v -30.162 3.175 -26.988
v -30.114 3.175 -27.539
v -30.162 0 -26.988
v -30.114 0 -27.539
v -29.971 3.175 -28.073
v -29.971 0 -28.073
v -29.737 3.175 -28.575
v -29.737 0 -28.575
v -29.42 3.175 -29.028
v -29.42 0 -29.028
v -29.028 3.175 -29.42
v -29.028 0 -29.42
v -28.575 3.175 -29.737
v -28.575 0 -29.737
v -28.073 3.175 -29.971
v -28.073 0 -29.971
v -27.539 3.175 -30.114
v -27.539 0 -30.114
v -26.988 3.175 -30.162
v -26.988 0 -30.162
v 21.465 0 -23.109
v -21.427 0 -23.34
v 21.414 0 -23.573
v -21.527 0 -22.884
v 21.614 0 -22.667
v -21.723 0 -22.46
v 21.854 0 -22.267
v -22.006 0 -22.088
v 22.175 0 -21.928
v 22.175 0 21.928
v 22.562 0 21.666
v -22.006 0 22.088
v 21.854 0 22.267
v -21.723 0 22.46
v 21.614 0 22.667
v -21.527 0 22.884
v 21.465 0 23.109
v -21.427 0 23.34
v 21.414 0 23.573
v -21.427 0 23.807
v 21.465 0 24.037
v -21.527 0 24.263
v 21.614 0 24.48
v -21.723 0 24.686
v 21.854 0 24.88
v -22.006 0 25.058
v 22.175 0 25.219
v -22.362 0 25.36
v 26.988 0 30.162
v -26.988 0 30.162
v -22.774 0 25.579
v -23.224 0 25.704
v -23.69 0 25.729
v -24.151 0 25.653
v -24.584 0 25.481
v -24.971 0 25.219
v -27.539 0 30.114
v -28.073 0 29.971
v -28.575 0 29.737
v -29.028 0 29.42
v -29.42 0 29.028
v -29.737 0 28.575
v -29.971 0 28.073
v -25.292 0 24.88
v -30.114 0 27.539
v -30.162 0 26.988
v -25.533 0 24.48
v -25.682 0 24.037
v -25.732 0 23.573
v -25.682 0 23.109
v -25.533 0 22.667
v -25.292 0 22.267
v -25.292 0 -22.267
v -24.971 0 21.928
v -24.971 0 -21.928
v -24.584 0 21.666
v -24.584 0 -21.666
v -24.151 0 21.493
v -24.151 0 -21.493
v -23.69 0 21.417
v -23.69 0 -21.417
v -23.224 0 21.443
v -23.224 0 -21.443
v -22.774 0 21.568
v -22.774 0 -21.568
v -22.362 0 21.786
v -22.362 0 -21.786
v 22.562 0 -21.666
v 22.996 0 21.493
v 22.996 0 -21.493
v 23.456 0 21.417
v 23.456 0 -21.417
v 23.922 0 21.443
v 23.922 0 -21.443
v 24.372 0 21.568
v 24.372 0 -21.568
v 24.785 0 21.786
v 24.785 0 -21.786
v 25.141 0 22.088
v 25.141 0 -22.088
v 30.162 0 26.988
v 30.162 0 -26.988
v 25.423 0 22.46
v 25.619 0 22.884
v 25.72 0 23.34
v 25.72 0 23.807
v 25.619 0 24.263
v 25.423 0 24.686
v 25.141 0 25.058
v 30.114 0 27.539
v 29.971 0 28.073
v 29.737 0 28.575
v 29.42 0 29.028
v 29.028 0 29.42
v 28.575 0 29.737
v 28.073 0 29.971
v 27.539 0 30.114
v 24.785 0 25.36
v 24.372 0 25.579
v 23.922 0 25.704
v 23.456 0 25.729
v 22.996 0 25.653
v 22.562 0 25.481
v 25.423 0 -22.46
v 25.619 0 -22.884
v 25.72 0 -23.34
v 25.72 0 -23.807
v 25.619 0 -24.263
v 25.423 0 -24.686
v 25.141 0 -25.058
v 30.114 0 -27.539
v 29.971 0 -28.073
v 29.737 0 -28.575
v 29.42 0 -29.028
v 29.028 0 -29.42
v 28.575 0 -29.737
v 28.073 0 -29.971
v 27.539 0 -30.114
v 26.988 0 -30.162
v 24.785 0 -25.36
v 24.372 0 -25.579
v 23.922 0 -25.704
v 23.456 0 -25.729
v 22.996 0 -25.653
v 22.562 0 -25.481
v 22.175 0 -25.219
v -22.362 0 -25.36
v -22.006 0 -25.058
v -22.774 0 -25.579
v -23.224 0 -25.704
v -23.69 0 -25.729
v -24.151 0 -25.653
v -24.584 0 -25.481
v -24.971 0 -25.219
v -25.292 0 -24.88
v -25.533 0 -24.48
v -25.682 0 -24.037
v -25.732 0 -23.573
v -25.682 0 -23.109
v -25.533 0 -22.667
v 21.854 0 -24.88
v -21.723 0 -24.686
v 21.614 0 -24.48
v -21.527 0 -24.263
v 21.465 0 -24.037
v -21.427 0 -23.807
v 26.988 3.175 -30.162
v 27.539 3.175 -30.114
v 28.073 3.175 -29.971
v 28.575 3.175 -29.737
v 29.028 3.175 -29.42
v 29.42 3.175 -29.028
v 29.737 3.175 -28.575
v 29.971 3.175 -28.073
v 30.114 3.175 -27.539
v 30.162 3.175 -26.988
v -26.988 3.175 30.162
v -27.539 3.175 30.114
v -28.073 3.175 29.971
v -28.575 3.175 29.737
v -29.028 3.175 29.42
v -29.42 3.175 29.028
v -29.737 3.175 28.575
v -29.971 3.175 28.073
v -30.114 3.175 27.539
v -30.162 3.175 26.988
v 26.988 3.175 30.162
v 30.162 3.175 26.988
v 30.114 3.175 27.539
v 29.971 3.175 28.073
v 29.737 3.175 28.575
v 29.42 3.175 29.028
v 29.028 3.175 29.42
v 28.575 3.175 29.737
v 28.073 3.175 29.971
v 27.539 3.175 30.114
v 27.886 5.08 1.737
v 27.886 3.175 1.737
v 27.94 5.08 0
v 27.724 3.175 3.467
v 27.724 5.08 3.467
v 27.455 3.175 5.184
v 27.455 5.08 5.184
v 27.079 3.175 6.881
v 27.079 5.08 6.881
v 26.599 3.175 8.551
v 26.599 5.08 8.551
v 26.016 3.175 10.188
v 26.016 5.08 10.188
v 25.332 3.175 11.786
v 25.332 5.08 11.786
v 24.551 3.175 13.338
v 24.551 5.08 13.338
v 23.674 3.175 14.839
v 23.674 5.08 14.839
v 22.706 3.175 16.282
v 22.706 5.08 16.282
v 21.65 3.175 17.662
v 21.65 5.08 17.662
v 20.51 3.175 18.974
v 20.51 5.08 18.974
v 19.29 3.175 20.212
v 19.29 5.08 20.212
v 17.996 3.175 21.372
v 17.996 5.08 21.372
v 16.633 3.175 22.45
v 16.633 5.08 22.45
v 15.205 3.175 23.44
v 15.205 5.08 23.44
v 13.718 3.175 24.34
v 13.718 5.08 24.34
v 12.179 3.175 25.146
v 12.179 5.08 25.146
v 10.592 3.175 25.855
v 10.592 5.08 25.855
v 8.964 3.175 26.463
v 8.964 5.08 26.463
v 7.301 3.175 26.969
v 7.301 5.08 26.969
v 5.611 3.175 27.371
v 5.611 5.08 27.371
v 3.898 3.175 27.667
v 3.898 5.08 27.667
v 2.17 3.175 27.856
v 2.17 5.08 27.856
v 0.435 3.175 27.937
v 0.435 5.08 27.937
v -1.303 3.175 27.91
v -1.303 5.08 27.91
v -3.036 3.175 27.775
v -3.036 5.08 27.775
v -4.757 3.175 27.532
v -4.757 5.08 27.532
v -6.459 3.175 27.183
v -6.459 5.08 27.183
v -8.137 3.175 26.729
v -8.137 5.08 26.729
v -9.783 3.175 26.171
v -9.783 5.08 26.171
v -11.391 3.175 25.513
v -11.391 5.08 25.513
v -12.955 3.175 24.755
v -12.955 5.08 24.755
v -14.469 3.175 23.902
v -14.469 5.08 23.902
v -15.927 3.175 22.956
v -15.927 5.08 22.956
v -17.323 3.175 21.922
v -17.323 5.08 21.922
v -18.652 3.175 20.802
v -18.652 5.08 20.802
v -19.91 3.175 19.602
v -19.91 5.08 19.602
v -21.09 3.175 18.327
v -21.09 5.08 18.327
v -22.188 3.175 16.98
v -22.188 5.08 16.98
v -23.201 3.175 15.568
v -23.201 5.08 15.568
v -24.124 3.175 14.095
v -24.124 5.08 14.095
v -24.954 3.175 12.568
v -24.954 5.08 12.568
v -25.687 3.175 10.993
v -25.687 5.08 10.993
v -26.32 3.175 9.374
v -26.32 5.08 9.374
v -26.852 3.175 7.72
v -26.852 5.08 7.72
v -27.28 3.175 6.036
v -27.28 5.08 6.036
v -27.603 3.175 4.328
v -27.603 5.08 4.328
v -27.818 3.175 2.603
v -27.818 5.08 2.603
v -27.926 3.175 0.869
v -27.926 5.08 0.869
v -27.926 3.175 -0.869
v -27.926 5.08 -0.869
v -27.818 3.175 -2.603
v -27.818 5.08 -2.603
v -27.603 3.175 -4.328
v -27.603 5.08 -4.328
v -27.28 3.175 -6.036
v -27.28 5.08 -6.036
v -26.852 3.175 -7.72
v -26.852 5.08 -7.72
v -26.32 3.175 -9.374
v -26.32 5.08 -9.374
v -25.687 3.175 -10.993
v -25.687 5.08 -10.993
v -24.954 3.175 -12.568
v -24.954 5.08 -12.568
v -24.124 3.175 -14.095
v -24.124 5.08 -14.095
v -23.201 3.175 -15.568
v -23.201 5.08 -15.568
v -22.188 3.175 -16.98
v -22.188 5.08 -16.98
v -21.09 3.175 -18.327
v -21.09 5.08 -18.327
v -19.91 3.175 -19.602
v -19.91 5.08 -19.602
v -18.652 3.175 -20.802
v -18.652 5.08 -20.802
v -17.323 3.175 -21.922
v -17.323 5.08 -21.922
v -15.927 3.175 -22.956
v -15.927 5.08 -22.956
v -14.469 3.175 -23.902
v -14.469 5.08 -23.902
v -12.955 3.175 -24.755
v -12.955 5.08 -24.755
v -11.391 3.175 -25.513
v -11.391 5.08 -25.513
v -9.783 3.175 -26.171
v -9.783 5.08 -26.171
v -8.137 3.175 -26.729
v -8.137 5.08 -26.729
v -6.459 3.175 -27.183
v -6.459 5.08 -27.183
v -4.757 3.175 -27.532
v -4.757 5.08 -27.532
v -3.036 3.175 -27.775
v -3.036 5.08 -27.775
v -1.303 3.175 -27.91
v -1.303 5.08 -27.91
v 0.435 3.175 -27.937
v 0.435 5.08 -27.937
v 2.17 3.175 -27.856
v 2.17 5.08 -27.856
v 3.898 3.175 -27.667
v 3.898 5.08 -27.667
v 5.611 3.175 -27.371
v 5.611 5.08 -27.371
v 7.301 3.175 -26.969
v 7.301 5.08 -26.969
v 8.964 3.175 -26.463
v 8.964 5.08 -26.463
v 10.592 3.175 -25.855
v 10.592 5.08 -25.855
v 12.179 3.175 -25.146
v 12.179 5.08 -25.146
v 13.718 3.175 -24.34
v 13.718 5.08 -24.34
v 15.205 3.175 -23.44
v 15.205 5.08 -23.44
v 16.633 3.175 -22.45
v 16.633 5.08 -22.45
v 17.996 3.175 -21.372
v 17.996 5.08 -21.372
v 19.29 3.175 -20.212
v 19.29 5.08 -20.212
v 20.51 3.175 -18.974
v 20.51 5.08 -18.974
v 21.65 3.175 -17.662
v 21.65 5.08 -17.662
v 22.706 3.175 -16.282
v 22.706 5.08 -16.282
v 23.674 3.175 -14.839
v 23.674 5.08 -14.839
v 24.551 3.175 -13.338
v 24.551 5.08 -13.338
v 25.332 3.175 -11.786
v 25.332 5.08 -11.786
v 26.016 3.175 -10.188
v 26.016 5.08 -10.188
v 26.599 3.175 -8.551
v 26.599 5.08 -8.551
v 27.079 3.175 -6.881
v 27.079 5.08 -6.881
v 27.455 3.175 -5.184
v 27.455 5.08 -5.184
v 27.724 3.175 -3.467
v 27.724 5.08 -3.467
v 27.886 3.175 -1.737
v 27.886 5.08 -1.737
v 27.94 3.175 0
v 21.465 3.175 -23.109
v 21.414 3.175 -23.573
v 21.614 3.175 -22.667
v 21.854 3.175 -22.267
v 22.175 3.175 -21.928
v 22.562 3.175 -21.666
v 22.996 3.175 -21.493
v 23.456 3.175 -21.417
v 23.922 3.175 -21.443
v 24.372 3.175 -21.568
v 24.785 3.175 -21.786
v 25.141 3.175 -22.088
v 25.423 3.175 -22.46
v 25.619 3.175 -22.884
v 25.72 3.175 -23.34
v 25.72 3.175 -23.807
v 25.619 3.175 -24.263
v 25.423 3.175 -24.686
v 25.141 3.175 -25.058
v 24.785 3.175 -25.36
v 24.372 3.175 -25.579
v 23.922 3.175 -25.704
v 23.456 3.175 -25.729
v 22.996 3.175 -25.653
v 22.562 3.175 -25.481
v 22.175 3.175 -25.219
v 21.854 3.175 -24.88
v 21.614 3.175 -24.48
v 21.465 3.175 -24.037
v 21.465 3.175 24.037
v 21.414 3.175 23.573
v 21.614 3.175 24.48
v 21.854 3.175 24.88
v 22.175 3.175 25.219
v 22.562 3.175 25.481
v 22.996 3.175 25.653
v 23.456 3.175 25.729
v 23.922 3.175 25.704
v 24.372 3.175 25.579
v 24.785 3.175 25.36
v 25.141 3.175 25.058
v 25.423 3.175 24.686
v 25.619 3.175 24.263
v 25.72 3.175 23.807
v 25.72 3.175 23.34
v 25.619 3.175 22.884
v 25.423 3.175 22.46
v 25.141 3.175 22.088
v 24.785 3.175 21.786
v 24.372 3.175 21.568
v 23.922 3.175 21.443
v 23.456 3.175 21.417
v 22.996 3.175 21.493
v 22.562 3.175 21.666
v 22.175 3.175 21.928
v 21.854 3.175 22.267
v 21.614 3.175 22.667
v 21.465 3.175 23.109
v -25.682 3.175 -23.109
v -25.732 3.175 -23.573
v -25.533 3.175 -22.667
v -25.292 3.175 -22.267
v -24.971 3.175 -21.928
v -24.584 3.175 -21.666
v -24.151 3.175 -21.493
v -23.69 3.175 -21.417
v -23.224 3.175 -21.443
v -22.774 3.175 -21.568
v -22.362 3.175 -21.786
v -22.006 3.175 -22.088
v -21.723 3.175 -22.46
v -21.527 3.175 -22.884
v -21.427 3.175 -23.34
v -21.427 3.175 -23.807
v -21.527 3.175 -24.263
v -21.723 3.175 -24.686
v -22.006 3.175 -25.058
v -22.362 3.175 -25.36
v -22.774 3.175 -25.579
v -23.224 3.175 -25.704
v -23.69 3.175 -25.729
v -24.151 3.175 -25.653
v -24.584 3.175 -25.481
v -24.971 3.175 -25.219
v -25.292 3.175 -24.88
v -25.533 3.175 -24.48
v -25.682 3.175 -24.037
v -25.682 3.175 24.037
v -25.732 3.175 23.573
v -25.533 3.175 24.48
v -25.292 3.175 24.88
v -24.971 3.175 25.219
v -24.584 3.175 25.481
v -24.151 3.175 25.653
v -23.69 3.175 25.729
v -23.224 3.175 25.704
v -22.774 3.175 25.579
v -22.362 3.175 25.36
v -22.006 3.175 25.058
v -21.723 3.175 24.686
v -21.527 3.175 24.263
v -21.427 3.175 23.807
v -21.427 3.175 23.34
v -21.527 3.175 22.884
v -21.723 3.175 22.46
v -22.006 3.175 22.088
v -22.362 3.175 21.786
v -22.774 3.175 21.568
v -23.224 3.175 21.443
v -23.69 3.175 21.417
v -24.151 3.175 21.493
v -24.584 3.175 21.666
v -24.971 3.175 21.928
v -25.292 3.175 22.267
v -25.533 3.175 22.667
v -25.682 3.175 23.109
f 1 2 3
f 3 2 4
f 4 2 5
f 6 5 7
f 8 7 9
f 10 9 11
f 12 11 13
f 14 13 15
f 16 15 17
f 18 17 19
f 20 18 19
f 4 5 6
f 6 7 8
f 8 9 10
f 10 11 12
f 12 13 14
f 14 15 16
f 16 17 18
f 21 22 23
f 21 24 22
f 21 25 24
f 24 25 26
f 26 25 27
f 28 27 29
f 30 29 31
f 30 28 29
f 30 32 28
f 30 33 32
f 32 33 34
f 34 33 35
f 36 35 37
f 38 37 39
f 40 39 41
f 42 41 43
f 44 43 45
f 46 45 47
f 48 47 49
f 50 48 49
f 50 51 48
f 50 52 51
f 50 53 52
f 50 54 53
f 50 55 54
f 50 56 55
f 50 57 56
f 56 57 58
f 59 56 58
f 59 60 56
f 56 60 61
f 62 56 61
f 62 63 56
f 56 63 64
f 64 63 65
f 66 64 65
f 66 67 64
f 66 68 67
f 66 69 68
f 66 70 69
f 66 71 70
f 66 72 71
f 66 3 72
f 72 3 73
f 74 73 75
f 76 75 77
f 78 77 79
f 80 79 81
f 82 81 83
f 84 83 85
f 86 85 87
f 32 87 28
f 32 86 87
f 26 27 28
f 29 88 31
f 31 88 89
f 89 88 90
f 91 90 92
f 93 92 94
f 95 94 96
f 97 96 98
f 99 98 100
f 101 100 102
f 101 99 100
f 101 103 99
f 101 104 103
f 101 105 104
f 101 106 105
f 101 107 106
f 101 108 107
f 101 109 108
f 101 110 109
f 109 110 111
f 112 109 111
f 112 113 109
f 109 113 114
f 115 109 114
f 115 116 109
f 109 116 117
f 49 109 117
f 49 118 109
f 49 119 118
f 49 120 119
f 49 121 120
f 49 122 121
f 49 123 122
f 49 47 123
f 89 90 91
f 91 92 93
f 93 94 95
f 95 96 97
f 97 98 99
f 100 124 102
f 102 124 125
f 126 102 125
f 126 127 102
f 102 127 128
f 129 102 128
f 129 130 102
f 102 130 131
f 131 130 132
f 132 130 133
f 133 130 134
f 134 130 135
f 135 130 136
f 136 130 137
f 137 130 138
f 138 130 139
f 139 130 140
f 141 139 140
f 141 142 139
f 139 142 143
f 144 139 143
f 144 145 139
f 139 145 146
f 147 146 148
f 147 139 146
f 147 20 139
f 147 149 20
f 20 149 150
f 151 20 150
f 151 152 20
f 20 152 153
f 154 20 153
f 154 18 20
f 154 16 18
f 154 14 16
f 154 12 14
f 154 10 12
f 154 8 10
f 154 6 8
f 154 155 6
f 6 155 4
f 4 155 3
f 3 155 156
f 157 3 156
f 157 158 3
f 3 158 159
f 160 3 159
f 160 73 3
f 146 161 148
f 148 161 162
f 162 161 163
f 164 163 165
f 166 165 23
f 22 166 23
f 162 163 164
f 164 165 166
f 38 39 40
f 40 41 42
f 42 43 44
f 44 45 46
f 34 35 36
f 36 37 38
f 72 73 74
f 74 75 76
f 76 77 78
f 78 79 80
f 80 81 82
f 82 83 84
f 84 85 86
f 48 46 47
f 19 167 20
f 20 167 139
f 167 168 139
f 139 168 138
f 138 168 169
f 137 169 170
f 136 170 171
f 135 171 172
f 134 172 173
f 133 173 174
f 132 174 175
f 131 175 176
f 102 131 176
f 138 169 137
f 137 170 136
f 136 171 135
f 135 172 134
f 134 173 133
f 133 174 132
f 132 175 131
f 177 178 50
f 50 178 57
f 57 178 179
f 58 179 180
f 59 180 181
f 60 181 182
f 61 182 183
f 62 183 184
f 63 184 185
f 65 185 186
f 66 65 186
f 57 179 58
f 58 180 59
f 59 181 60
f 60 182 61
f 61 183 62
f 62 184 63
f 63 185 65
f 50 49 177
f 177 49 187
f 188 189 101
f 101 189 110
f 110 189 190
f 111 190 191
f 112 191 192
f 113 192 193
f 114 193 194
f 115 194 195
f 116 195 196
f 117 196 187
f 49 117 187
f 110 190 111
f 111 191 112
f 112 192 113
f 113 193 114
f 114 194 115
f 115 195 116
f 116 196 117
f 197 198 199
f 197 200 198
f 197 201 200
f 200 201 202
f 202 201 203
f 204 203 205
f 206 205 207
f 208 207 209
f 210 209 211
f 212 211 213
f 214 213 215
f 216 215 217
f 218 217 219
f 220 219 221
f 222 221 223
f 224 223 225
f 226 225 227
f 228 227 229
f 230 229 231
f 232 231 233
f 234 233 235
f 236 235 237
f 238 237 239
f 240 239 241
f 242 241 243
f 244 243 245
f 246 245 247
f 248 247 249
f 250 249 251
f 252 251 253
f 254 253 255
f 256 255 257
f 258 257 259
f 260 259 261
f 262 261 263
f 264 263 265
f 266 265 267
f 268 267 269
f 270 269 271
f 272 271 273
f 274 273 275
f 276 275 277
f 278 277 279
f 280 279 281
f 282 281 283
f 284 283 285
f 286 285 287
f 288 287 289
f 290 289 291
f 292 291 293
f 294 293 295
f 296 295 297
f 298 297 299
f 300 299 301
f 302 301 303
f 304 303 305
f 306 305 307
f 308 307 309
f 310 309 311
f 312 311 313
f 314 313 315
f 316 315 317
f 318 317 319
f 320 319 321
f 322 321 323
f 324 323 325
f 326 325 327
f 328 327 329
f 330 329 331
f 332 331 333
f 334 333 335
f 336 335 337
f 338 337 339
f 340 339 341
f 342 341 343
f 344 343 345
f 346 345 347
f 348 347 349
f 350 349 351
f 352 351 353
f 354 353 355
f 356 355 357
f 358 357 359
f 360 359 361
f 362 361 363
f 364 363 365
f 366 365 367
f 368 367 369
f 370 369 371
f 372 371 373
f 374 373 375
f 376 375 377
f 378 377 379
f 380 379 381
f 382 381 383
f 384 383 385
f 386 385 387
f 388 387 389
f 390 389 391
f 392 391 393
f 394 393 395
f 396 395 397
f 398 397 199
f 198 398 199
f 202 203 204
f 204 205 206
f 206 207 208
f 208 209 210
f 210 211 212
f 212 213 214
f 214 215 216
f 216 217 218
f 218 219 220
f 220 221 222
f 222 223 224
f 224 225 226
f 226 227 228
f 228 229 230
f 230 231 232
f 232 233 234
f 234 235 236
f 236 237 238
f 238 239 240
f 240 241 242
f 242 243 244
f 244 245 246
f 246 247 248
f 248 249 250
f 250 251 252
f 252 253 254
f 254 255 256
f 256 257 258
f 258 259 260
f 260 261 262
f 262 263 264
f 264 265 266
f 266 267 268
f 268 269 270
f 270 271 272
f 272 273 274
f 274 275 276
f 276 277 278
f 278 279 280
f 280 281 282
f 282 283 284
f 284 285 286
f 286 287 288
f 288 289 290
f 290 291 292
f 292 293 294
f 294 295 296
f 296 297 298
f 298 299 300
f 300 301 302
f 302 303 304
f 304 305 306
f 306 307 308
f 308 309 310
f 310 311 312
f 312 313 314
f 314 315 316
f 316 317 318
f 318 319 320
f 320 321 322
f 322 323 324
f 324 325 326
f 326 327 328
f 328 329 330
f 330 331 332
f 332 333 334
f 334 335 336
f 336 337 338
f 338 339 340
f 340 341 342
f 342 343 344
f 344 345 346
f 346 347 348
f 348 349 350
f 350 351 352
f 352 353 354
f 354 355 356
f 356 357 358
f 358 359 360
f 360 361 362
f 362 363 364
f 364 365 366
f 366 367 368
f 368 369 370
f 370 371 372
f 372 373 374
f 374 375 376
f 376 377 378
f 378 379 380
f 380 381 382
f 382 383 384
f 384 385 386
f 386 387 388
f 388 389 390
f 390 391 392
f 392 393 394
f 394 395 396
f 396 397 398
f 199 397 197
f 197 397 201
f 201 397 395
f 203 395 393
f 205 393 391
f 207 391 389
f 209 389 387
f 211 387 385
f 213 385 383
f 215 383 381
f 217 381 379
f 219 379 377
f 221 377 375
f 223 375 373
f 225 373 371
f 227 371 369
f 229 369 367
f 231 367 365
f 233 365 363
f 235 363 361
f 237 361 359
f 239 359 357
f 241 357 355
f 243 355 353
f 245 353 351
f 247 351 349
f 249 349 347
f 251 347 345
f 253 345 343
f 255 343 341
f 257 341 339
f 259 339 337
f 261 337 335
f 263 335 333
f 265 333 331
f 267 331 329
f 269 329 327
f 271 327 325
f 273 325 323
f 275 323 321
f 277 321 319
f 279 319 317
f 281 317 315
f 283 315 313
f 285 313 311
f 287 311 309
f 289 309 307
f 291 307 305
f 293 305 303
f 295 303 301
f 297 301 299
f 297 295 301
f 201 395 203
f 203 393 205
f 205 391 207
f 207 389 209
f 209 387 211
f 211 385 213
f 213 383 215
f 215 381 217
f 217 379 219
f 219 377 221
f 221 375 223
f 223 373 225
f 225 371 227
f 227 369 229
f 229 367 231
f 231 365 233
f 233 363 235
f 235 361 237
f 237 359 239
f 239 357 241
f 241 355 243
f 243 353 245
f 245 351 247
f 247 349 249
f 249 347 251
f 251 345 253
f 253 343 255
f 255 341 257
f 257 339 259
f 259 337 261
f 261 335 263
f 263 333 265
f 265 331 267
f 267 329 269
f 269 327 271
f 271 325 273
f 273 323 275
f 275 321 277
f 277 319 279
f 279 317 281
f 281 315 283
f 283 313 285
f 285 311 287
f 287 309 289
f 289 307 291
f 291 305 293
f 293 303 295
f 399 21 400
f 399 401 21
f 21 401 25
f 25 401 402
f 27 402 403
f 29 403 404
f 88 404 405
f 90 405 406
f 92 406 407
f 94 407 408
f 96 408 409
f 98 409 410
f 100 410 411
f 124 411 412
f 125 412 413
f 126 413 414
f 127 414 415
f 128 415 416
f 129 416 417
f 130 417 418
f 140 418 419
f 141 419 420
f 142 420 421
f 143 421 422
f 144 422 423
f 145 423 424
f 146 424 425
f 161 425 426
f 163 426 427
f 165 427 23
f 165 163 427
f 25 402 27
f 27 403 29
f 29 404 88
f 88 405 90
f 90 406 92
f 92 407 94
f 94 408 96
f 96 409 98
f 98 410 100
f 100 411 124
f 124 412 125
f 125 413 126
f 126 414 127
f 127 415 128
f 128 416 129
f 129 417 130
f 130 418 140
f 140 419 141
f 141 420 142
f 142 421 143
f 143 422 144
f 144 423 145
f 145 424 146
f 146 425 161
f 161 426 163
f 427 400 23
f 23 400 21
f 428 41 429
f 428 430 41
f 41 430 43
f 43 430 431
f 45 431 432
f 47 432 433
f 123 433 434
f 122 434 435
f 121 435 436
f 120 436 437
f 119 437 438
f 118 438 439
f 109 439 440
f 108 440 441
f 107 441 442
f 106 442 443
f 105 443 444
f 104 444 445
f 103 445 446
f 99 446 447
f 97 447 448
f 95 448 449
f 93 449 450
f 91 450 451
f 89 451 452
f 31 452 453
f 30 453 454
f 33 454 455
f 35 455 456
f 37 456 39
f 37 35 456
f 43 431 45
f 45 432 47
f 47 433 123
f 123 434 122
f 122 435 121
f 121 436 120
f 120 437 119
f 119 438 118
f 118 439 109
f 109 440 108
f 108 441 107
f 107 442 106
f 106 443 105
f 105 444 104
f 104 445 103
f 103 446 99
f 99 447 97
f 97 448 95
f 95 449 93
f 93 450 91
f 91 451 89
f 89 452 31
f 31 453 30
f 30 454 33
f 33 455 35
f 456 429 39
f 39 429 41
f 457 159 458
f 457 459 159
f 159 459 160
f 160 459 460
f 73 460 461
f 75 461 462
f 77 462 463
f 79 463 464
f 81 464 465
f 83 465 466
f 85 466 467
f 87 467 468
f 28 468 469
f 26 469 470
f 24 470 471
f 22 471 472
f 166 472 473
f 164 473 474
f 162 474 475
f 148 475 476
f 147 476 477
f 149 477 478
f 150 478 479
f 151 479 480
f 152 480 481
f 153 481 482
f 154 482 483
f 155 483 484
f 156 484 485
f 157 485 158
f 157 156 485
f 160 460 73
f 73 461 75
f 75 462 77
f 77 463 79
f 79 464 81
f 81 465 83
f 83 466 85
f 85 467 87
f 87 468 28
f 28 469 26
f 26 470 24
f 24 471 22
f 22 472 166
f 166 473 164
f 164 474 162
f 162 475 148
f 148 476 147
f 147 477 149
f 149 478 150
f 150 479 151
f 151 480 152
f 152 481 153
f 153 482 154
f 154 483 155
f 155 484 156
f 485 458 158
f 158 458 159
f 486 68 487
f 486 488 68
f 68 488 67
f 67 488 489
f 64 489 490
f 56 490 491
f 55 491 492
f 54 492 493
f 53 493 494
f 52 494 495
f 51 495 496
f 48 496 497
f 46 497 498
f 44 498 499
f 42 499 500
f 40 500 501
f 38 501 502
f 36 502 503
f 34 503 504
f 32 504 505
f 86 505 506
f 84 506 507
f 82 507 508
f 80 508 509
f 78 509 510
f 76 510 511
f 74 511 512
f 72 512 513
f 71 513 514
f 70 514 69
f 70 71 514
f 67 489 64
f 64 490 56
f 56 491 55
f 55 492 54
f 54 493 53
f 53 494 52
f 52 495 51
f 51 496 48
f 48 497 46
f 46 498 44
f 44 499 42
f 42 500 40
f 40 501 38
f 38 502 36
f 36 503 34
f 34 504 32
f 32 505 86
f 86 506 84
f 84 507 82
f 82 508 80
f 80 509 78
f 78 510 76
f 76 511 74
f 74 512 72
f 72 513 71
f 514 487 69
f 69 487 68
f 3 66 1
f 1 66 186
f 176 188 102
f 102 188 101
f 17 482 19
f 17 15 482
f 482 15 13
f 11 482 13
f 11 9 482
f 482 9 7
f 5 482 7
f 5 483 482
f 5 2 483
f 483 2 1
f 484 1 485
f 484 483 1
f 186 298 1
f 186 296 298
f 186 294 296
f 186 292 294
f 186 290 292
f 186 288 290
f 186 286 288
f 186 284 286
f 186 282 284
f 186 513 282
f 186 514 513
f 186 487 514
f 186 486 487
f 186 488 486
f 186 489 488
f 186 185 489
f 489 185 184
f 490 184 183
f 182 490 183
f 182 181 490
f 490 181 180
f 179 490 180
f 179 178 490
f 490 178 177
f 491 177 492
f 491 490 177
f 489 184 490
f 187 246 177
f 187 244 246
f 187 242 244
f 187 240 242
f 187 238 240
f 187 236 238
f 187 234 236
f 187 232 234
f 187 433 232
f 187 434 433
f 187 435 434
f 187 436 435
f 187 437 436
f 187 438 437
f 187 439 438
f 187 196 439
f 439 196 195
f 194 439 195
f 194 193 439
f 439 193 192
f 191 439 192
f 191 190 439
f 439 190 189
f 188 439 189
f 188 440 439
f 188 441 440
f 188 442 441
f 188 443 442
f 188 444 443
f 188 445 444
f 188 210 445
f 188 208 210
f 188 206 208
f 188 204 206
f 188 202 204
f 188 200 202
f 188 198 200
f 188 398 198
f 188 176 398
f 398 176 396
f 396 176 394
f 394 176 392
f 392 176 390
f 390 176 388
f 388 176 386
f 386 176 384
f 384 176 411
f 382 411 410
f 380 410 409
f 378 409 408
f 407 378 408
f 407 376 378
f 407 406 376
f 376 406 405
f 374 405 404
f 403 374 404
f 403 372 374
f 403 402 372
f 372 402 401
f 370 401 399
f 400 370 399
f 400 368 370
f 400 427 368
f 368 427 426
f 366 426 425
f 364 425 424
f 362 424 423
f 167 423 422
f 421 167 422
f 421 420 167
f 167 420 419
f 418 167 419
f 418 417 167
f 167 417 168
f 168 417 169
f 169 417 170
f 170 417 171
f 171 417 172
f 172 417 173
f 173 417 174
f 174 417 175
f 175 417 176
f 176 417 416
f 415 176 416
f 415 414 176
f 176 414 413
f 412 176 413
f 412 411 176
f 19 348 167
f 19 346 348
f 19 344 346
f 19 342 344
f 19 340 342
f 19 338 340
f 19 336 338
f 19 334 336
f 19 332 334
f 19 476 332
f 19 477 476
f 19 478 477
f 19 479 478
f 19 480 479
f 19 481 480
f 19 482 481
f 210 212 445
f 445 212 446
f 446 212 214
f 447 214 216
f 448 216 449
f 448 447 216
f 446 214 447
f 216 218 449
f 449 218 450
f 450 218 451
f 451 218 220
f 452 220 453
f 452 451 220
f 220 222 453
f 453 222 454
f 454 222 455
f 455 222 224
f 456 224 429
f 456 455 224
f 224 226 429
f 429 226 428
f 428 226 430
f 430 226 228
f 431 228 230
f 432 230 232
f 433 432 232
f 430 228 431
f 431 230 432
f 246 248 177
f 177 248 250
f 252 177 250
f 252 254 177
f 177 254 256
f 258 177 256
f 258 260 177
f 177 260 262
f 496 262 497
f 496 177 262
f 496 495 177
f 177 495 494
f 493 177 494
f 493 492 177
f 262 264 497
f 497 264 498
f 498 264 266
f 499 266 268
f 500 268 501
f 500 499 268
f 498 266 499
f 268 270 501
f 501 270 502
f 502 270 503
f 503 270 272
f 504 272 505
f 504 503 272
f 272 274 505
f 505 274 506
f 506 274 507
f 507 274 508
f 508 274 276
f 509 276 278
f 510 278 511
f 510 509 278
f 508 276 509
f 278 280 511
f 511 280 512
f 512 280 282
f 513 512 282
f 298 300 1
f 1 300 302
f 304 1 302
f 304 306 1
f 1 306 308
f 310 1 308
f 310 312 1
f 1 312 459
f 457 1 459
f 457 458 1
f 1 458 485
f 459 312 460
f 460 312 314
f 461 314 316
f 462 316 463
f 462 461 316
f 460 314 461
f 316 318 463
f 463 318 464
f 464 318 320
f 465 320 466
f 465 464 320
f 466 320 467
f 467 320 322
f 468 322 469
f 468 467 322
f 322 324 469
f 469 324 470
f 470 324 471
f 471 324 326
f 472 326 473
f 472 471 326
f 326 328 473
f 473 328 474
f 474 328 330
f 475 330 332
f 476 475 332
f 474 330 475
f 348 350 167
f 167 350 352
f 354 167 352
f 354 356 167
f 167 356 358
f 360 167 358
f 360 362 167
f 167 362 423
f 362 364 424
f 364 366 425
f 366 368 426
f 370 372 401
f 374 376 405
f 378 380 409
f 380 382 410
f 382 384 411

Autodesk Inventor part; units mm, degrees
ref_plane "YZ Plane" through (0, 0, 0) normal (1, 0, 0) x (0, 1, 0)
ref_plane "XZ Plane" through (0, 0, 0) normal (0, 1, 0) x (-1, 0, 0)
ref_plane "XY Plane" through (0, 0, 0) normal (0, 0, 1) x (1, 0, 0)
sketch "Sketch1" plane through (0, 0, 0) normal (0, 1, 0) x (-1, 0, 0)
  line L0 (30.1625, 30.1625) -> (-30.1625, 30.1625)
  line L1 (-30.1625, 30.1625) -> (-30.1625, -30.1625)
  line L2 (-30.1625, -30.1625) -> (30.1625, -30.1625)
  line L3 (30.1625, -30.1625) -> (30.1625, 30.1625)
  circle A0 centre (0, 0) radius 33.3375 construction
  circle A1 centre (0, 0) radius 28.575
  line L4 (-30.1625, 30.1625) -> (30.1625, -30.1625) construction
  line L5 (30.1625, 30.1625) -> (-30.1625, -30.1625) construction
  circle A2 centre (23.5732, 23.5732) radius 2.159
  circle A3 centre (23.5732, -23.5732) radius 2.159
  circle A4 centre (-23.5732, 23.5732) radius 2.159
  circle A5 centre (-23.5732, -23.5732) radius 2.159
  point P0 (0, 0)
  point P1 (0, 0)
  dimension "d0" = 60.325
  dimension "d1" = 60.325
  dimension "d2" = 66.675
  dimension "d3" = 57.15
  dimension "d4" = 4.318
  dimension "d5" = 4.318
  dimension "d6" = 4.318
  dimension "d7" = 4.318
extrude "Extrusion1" add sketch "Sketch1" along normal blind 3.175 contours L3 L2 L1 L0 | A1
sketch "Sketch2" plane through (0, 3.175, 0) normal (0, 1, 0) x (1, 0, 0)
  circle A0 centre (0, 0) radius 27.94
  circle A1 centre (0, 0) radius 28.575 construction
  point P0 (0, 0)
  dimension "d10" = 55.88
  dimension "d17" = 57.15
extrude "Extrusion2" add sketch "Sketch2" along normal blind 1.905
fillet "Fillet1" radius 3.175 1 edges at (30.1625, 1.5875, 30.1625)
fillet "Fillet2" radius 3.175 1 edges at (-30.1625, 1.5875, 30.1625)
fillet "Fillet3" radius 3.175 1 edges at (30.1625, 1.5875, -30.1625)
fillet "Fillet4" radius 3.175 1 edges at (-30.1625, 1.5875, -30.1625)
properties part number "2-25-instrument-blank"
